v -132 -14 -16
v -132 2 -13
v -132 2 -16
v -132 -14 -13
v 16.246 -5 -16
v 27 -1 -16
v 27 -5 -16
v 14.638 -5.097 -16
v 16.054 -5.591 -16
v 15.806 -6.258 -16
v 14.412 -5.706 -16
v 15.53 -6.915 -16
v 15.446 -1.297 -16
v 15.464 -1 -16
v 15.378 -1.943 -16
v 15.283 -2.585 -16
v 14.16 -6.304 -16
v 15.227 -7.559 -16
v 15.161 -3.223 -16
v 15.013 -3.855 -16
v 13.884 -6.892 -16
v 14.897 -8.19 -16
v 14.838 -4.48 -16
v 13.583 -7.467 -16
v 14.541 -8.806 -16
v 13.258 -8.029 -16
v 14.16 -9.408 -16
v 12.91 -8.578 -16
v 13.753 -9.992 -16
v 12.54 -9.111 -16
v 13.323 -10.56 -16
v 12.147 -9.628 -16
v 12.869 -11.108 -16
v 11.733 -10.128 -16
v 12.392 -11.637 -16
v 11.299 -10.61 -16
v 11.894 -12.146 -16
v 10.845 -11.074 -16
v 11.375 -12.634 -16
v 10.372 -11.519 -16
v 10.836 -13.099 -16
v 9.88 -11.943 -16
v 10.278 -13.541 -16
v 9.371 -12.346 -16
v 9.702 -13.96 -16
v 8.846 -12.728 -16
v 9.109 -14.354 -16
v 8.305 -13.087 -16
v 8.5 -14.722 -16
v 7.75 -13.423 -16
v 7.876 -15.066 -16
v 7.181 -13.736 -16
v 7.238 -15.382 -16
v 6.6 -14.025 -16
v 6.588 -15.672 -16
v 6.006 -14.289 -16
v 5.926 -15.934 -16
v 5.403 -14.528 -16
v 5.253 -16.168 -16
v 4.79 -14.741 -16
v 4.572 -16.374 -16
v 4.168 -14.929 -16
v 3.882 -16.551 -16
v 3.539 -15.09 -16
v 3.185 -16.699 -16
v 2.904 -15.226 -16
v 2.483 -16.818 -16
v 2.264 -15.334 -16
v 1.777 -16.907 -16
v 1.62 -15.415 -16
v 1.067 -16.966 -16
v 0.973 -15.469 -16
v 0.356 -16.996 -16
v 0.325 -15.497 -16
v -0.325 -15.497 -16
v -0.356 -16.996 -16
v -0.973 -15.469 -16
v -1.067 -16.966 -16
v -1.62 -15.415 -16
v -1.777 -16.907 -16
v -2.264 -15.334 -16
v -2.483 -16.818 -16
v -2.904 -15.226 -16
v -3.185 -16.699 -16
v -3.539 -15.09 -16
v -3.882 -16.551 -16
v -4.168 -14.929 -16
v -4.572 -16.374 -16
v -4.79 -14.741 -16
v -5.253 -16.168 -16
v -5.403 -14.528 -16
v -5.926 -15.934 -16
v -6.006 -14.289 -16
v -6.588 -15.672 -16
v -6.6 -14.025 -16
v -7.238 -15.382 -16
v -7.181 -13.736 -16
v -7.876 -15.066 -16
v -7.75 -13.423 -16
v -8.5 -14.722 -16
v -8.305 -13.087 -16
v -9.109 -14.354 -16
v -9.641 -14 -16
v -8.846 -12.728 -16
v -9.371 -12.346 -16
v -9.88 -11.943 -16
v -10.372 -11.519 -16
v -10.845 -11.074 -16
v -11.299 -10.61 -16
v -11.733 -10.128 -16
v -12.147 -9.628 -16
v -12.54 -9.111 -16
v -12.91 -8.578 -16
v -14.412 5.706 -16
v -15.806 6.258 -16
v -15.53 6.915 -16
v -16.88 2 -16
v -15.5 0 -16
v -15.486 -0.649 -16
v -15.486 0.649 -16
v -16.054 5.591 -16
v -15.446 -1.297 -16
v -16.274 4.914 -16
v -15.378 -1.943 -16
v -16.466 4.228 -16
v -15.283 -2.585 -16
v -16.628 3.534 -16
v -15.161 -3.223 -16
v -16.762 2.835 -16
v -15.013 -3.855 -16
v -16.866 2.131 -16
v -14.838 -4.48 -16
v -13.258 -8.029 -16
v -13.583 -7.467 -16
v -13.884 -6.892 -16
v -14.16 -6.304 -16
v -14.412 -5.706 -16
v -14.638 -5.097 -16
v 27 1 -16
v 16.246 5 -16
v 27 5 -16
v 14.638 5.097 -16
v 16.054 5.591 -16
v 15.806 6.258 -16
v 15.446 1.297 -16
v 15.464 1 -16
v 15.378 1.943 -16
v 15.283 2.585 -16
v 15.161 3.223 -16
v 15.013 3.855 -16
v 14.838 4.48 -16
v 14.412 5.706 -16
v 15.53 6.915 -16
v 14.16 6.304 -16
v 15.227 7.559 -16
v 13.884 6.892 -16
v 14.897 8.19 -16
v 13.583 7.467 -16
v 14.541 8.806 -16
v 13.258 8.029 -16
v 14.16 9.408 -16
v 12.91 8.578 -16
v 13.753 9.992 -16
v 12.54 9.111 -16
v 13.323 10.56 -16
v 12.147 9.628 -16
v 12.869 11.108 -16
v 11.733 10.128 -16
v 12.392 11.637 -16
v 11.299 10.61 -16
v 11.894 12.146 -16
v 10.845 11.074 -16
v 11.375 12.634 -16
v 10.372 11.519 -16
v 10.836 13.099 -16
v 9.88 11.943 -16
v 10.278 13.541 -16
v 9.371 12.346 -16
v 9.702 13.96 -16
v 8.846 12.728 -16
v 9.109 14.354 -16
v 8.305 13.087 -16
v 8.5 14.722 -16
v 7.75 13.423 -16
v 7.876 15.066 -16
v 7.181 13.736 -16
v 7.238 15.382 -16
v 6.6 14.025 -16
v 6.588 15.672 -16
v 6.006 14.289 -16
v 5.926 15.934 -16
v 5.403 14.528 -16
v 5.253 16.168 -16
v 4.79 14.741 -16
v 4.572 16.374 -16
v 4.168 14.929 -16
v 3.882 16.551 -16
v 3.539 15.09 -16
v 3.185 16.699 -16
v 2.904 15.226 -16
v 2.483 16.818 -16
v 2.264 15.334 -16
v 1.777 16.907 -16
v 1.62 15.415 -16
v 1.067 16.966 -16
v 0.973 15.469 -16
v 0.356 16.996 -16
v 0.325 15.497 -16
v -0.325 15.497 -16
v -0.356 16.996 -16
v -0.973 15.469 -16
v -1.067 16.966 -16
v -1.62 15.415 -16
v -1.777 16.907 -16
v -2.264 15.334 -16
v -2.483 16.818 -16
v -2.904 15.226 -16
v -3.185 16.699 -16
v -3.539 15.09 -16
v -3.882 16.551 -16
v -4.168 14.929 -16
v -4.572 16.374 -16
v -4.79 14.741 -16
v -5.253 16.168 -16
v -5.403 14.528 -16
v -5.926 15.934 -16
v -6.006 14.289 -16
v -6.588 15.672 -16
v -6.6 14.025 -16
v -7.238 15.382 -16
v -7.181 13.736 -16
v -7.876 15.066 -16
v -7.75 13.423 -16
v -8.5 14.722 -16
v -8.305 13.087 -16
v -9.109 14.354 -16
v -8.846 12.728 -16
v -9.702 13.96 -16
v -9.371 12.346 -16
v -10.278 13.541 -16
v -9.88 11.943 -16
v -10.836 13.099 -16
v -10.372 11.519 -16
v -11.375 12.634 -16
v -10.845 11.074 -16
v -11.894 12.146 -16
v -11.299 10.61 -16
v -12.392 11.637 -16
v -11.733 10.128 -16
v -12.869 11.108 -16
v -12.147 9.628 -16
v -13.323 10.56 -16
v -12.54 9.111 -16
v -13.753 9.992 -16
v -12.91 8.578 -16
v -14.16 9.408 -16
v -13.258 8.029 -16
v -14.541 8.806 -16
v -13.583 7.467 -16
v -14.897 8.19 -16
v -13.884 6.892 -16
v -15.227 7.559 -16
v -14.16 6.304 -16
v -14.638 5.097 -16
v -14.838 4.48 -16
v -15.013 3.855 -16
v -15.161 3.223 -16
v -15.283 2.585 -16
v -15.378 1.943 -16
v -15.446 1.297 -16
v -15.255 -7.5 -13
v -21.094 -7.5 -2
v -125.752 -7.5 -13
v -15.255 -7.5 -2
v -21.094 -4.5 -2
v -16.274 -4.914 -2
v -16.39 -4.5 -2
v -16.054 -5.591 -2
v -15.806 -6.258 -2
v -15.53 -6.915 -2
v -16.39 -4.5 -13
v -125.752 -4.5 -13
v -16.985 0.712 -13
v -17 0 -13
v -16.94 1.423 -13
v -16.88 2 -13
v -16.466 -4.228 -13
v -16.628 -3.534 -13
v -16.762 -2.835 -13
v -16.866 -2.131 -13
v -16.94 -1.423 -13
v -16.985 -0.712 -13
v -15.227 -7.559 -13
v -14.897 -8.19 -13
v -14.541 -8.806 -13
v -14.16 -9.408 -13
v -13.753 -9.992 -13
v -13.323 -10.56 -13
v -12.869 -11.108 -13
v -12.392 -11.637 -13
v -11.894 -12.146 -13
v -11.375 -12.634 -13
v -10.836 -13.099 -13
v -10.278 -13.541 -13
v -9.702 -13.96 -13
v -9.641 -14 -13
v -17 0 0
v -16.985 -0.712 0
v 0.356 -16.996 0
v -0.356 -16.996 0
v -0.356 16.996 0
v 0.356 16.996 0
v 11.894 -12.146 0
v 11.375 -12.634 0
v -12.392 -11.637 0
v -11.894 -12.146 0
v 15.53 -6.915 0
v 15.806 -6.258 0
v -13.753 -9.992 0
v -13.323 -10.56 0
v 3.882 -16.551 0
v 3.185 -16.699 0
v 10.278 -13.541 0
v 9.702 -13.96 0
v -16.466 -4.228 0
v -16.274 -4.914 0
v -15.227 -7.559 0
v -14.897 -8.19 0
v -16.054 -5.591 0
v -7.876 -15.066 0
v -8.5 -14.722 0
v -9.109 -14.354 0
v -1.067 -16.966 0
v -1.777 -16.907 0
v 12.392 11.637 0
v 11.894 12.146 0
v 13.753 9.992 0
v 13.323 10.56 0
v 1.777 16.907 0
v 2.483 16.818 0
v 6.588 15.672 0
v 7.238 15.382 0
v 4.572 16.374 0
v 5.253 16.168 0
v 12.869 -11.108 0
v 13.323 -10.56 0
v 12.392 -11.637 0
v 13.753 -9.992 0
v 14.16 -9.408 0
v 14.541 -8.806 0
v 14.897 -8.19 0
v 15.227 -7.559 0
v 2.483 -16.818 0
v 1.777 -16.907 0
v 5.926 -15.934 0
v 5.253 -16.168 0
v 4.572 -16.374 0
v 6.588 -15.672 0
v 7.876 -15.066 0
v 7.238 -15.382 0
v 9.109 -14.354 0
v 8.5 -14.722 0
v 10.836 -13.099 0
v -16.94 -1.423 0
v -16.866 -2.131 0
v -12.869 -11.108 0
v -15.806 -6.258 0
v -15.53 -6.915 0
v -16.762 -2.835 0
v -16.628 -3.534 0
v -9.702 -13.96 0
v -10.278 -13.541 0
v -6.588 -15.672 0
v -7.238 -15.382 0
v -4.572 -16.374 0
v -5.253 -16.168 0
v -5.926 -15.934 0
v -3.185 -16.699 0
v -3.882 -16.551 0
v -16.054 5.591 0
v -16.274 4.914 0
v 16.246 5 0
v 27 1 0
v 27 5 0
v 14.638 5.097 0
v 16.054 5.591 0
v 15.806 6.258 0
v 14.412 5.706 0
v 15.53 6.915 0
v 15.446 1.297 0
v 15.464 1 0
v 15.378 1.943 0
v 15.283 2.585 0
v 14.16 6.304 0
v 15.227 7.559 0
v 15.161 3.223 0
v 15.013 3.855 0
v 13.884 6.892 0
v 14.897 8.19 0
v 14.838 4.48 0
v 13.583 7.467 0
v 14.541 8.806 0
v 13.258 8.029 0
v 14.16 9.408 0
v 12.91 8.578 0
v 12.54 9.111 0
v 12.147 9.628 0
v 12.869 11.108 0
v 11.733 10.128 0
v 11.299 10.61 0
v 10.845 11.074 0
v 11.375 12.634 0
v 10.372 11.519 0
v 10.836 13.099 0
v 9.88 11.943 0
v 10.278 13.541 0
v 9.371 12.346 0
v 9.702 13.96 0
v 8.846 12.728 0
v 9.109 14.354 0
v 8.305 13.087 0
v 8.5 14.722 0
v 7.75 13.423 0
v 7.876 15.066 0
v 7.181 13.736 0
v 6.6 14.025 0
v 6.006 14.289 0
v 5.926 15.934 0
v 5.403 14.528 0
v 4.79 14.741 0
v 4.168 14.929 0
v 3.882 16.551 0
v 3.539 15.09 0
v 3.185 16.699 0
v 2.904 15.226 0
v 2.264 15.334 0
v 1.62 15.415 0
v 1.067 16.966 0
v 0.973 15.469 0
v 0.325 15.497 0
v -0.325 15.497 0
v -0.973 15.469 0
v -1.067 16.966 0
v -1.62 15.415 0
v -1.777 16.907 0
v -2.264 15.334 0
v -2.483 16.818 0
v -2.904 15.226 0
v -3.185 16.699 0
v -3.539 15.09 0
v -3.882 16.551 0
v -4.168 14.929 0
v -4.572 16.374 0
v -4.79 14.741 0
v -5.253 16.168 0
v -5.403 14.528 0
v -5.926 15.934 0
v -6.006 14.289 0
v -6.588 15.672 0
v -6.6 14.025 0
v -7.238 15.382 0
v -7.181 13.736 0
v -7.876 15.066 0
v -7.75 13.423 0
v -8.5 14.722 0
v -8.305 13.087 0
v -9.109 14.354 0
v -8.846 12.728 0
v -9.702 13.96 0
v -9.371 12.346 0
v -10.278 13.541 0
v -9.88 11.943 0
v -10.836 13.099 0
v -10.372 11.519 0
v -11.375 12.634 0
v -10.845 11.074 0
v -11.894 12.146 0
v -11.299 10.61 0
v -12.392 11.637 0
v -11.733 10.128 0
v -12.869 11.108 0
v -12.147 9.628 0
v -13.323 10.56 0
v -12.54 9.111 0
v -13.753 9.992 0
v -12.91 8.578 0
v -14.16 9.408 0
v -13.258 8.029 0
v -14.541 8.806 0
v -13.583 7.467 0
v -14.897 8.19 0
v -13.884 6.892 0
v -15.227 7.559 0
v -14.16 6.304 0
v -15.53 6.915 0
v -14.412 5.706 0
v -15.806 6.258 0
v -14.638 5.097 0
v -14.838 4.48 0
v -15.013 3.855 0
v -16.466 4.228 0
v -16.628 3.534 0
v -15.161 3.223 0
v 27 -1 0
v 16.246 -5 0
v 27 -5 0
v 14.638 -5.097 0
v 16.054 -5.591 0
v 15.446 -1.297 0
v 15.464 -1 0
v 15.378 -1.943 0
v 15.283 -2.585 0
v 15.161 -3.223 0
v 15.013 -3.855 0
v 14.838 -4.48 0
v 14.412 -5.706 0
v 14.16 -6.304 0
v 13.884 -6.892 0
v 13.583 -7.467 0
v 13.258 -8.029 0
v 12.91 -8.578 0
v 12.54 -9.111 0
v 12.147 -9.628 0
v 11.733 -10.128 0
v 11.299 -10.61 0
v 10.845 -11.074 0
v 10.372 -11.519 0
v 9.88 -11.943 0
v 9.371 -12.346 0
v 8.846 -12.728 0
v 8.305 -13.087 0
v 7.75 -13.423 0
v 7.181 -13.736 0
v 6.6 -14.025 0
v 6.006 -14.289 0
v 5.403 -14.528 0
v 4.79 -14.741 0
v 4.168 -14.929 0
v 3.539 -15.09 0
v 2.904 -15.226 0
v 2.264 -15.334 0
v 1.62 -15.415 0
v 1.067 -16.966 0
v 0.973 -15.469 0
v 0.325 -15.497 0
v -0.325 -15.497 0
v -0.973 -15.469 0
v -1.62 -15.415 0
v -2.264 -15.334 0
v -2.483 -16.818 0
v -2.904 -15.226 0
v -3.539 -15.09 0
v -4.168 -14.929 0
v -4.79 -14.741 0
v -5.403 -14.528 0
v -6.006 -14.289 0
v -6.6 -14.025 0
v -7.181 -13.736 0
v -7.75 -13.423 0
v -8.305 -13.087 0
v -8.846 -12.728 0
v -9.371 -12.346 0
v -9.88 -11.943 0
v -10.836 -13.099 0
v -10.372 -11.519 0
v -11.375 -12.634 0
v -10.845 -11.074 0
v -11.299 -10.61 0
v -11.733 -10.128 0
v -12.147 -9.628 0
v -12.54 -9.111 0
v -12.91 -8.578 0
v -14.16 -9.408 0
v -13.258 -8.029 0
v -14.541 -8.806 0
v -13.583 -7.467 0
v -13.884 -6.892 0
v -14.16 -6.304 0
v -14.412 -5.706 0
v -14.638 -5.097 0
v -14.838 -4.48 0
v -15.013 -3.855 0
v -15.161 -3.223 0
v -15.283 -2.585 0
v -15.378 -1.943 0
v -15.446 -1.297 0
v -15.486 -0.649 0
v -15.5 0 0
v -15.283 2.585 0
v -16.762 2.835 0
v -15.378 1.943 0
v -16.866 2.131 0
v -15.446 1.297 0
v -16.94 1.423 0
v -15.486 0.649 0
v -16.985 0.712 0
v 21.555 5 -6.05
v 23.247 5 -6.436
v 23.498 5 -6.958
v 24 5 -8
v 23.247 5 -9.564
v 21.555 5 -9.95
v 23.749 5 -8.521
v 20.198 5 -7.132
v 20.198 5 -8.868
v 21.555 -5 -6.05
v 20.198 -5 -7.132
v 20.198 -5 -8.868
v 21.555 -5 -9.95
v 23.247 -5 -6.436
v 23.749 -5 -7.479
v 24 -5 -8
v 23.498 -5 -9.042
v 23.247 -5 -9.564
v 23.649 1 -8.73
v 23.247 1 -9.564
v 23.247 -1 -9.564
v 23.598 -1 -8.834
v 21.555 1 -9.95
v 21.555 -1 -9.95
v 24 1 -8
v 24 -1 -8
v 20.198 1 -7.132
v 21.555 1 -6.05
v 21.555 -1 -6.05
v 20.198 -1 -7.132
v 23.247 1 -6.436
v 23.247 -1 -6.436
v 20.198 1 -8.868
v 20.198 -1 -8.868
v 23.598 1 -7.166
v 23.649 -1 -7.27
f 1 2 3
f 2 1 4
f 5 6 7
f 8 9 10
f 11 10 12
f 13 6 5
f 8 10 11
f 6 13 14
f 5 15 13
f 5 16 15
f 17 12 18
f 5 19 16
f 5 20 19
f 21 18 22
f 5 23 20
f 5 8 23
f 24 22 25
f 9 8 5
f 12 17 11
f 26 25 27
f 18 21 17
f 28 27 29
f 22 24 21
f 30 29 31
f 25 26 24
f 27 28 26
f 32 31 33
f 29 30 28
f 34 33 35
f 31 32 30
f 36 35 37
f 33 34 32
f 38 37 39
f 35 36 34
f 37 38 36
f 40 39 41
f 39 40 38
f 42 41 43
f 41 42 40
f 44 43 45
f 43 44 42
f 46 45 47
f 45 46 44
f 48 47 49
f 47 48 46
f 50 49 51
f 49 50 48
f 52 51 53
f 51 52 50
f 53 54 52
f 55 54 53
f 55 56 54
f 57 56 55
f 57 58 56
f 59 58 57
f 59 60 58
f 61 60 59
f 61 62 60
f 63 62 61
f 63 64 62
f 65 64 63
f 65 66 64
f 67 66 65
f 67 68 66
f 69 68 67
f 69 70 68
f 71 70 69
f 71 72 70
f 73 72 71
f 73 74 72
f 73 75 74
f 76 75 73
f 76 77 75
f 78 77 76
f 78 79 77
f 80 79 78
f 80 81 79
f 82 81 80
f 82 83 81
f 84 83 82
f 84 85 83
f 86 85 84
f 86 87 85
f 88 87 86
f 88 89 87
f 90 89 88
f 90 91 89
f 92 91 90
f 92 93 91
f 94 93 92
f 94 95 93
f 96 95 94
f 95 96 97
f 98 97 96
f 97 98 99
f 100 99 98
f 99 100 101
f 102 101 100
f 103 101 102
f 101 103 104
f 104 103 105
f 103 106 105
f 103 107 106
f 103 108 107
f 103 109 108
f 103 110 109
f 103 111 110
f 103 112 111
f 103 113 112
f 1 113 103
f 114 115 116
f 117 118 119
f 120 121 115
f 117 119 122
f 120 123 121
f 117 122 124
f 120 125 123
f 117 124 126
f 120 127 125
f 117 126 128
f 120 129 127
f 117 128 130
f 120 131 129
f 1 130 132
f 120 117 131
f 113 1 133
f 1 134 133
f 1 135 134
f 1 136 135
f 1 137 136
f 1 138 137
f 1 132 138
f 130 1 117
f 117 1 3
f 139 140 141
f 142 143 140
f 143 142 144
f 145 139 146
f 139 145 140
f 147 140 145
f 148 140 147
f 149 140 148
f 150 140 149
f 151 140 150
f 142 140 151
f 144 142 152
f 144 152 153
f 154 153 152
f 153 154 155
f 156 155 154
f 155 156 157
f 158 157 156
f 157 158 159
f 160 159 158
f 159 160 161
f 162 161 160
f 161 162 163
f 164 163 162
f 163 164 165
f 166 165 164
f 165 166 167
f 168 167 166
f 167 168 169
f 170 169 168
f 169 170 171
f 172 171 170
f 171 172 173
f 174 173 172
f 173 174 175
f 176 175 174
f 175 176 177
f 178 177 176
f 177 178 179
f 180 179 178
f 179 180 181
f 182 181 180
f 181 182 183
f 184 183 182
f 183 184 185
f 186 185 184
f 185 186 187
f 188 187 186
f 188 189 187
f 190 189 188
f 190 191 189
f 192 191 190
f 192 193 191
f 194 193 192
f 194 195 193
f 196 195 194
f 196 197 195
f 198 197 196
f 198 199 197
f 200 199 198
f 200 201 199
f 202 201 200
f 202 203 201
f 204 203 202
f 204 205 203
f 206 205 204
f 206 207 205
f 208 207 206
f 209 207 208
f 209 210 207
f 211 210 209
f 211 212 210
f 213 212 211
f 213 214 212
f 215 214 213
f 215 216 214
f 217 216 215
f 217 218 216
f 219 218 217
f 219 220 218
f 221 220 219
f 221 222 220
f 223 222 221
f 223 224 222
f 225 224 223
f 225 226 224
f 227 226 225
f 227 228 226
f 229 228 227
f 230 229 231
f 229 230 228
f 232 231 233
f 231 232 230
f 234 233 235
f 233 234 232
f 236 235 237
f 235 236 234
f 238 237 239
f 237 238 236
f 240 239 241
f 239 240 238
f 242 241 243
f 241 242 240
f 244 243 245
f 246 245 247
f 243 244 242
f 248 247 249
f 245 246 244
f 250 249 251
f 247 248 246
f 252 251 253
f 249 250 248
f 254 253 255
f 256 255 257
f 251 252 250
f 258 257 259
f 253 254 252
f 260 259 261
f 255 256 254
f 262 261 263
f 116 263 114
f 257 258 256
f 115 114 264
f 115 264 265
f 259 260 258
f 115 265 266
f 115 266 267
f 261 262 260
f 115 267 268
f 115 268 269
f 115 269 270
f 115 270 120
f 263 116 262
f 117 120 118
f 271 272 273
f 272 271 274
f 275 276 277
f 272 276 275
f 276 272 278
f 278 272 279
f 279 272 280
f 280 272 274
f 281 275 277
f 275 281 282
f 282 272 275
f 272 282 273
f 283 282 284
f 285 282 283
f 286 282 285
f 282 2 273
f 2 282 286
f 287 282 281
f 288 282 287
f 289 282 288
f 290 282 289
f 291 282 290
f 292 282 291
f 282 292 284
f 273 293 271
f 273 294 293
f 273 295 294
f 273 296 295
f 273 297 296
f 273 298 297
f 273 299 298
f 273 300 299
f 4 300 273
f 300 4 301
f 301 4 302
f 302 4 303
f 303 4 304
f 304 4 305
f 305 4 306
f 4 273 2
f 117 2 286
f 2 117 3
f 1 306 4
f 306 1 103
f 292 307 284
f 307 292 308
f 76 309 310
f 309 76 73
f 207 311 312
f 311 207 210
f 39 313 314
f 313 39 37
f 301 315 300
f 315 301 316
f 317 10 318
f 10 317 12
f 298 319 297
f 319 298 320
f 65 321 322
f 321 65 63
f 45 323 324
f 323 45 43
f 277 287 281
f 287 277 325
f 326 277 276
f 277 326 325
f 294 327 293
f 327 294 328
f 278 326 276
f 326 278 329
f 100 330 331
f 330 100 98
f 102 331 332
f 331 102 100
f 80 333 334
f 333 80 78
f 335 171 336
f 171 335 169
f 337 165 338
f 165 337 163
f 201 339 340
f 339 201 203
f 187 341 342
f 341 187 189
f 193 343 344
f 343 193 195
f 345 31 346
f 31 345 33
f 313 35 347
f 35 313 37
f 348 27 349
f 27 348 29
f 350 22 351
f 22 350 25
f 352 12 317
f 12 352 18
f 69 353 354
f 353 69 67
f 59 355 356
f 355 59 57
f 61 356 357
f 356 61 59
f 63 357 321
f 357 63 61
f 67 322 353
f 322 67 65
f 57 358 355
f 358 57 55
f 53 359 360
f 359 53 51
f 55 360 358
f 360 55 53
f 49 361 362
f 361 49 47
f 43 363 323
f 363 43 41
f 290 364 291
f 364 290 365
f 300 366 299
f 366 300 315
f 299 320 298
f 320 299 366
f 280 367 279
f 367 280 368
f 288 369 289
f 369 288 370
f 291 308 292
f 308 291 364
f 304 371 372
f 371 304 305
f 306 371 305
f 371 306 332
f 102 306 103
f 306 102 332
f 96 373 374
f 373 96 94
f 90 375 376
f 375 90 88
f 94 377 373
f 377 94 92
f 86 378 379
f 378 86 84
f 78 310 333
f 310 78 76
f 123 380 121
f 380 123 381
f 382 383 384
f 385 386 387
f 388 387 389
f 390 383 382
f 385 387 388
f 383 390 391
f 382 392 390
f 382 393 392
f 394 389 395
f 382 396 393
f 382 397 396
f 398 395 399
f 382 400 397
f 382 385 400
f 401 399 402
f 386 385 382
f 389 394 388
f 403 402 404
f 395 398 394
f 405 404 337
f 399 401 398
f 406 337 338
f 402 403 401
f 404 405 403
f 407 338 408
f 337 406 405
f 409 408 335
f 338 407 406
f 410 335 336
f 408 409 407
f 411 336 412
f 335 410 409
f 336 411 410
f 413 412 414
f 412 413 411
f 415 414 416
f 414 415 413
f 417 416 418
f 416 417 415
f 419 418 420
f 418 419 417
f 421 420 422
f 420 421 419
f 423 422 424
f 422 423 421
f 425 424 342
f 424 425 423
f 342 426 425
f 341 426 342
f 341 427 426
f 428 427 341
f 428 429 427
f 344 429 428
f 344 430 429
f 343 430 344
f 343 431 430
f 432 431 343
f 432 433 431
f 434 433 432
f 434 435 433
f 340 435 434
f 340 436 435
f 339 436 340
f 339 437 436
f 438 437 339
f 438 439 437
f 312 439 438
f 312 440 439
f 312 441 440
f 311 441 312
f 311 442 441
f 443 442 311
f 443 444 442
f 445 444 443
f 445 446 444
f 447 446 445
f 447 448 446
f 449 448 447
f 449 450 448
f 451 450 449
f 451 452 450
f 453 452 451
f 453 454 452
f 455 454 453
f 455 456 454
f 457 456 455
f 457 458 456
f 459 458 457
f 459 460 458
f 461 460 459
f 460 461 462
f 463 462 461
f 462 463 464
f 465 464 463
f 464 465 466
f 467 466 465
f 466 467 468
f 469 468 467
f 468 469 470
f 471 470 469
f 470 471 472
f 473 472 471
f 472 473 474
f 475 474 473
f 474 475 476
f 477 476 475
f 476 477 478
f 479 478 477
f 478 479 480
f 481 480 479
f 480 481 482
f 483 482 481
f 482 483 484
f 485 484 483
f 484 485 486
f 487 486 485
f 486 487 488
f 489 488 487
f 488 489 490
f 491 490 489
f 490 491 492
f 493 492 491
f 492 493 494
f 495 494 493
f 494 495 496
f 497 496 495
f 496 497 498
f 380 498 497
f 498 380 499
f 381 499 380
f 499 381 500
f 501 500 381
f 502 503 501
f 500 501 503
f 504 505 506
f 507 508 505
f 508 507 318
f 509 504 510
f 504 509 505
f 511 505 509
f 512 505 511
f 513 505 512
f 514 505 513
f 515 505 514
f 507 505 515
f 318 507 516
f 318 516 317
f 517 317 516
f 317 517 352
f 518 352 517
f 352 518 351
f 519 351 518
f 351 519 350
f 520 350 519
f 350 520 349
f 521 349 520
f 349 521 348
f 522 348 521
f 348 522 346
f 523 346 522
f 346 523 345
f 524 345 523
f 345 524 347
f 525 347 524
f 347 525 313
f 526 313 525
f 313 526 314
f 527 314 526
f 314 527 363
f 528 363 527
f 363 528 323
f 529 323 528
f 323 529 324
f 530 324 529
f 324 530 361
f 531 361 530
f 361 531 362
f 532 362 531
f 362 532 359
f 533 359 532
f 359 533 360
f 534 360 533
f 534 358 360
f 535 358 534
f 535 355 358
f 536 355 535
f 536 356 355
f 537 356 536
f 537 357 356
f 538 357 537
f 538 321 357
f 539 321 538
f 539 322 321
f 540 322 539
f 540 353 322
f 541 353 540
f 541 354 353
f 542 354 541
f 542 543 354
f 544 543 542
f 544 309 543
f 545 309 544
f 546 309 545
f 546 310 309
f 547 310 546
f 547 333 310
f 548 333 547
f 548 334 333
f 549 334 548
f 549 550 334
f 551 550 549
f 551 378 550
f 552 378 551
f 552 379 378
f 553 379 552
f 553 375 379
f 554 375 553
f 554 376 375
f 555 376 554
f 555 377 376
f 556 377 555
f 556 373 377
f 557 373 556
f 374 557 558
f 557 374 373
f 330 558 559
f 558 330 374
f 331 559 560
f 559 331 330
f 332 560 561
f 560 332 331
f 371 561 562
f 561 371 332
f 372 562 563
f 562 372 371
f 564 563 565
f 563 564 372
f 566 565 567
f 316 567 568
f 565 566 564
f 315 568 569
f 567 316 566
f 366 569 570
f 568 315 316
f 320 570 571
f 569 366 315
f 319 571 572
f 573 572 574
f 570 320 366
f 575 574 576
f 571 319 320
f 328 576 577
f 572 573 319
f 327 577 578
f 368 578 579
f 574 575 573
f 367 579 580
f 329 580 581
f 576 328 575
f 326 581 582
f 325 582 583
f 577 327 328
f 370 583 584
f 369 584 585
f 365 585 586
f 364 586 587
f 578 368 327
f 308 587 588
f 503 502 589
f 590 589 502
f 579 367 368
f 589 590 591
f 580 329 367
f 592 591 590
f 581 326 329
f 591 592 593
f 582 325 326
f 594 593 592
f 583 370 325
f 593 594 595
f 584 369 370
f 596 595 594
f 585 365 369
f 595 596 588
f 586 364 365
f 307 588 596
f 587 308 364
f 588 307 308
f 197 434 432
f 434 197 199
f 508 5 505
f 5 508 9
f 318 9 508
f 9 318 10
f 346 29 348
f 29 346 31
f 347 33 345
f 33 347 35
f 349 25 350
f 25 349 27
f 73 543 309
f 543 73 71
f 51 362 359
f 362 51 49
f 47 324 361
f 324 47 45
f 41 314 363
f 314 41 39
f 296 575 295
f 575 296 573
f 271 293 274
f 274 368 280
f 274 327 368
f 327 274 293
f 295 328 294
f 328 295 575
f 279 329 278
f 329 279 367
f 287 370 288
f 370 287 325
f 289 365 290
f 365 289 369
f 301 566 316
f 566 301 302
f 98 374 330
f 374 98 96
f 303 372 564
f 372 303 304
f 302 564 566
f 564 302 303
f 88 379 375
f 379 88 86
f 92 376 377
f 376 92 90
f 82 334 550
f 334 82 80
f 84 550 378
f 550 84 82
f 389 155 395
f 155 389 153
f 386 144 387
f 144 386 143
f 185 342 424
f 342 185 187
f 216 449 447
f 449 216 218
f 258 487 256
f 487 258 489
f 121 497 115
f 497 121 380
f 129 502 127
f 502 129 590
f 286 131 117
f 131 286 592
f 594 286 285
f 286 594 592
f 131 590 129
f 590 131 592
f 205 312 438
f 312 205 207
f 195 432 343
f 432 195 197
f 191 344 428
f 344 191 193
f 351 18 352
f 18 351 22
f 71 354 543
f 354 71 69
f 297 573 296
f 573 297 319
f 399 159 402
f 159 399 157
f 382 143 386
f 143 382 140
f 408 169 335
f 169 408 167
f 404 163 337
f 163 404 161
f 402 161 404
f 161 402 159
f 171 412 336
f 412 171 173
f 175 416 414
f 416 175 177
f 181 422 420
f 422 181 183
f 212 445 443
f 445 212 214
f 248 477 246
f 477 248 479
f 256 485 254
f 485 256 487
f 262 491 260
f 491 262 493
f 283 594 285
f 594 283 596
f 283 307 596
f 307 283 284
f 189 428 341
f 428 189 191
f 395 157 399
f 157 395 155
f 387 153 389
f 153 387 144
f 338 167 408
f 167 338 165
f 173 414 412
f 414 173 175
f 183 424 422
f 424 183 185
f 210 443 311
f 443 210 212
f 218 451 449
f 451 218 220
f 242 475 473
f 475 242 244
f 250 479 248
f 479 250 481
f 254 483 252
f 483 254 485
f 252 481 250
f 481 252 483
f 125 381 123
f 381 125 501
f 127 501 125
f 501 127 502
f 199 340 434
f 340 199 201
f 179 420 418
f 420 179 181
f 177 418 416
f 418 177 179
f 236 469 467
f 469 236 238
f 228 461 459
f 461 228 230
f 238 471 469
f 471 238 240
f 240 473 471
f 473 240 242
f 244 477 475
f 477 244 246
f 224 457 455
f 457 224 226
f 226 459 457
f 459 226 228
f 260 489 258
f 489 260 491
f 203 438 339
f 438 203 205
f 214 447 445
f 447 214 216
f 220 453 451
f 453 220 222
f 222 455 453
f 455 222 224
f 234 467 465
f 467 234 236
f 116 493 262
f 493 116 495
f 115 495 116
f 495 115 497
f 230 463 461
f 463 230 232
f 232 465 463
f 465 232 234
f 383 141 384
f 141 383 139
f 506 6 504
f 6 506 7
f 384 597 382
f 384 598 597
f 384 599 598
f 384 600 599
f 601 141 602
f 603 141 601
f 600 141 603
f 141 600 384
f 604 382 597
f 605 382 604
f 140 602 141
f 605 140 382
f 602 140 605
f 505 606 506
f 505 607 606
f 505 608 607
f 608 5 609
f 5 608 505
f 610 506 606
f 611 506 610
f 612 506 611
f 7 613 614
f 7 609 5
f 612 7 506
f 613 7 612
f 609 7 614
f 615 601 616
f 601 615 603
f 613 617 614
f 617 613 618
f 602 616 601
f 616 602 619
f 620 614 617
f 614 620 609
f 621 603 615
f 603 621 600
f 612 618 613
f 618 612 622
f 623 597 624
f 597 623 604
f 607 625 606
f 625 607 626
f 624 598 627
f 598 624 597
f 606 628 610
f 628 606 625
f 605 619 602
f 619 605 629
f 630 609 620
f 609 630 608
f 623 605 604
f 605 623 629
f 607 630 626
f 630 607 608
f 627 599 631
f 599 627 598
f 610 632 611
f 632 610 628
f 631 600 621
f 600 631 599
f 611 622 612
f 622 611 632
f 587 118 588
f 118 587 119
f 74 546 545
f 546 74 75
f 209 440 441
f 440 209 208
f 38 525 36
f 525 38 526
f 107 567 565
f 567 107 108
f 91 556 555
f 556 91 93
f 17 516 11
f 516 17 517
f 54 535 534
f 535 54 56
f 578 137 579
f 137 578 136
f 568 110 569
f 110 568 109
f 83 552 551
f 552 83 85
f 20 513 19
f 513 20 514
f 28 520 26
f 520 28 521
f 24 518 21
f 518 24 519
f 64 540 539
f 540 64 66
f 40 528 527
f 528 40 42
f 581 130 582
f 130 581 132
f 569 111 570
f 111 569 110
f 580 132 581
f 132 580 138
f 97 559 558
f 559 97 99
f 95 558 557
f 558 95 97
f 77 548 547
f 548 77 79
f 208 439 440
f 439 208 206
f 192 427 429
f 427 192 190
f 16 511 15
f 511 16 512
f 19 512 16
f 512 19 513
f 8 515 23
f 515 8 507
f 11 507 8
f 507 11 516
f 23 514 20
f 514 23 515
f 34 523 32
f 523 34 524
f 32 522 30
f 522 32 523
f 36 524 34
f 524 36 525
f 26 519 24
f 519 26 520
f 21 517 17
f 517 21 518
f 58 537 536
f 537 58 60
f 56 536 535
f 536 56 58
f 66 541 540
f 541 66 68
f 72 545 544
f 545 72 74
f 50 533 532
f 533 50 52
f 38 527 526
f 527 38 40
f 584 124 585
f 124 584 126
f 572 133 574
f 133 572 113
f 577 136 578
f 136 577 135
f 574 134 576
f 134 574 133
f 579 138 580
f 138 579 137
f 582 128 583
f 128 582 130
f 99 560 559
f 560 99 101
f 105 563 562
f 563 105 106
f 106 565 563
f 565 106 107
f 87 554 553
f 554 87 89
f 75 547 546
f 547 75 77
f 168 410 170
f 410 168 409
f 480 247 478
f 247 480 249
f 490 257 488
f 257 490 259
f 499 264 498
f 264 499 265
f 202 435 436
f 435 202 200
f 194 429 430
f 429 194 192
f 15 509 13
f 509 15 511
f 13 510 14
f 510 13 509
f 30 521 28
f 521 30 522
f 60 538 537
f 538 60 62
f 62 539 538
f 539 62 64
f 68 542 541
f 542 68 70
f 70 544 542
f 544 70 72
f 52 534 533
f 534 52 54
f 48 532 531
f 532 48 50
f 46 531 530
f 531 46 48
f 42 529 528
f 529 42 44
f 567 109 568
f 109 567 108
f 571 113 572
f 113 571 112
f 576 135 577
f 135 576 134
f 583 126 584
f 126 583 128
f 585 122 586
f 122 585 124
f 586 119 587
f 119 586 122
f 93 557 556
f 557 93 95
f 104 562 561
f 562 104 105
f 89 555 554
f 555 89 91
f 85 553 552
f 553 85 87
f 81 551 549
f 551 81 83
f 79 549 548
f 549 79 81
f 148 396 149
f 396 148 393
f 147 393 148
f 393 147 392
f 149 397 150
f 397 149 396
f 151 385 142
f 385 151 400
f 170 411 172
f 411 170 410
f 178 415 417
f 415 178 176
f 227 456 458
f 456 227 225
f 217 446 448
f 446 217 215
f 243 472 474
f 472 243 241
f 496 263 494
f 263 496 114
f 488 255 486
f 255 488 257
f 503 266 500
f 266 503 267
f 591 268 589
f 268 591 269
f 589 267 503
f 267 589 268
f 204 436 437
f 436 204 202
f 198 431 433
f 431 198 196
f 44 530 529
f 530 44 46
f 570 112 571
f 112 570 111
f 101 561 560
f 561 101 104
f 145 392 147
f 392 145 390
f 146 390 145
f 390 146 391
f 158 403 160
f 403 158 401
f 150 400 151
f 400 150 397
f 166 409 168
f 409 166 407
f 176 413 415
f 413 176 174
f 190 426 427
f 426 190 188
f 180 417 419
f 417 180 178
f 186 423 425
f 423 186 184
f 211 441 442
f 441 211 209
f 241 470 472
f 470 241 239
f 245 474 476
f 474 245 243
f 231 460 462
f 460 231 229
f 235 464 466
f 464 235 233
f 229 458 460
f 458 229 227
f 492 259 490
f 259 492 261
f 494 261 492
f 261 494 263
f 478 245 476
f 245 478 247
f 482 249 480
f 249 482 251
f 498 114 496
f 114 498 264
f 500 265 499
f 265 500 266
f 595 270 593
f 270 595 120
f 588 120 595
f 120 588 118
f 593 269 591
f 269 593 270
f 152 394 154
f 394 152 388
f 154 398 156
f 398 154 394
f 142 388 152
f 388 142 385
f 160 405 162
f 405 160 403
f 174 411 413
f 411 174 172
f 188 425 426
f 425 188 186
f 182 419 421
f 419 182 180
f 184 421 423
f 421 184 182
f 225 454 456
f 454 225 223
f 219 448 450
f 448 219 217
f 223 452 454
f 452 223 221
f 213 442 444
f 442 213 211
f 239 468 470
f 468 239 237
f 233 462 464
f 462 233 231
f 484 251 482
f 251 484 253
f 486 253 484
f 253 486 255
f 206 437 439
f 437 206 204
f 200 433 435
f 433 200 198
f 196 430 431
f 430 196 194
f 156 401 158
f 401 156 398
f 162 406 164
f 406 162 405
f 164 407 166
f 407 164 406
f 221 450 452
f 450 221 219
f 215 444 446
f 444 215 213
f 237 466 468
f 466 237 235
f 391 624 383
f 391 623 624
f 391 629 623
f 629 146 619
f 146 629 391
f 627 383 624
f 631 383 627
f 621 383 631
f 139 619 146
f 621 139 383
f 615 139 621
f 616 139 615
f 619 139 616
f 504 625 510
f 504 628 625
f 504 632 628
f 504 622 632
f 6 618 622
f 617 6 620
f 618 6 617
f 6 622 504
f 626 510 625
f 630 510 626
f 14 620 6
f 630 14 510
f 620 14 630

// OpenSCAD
d=32;


module slate()
difference() {
    translate([-d/2-116, -1.5, 2])
        cube([d/2+116, 3, 14]);
    translate([-d/2-120, -2, 0])
        rotate([0, 6, 0])
        cube([d/2+116, 4, 14]);
}

rotate([180, 0, 0])
difference() {
    union() {
        // tobe clamp
        cylinder(16, d=d+2, $fn=150);
        // screw extension
        translate([0, -5, 0])
            cube([d/2+11, 10, 16]);
        // led module holder
        translate([0, 6, 0]) {
            translate([-d/2-116, -8, 13])
                cube([d/2+116, 16, 3]);
            slate();
        }
    }

    // screw hole
    translate([d/2+6, 0, 8])
        rotate([90,0,0])
        cylinder(30, d=4, center=true);
    // tube cutout
    translate([0, 0, -5])
        cylinder(30, d=d-1, $fn=150);
    // slit
    translate([0, -1, -5])
        cube([d/2+20, 2, 30]);
}
